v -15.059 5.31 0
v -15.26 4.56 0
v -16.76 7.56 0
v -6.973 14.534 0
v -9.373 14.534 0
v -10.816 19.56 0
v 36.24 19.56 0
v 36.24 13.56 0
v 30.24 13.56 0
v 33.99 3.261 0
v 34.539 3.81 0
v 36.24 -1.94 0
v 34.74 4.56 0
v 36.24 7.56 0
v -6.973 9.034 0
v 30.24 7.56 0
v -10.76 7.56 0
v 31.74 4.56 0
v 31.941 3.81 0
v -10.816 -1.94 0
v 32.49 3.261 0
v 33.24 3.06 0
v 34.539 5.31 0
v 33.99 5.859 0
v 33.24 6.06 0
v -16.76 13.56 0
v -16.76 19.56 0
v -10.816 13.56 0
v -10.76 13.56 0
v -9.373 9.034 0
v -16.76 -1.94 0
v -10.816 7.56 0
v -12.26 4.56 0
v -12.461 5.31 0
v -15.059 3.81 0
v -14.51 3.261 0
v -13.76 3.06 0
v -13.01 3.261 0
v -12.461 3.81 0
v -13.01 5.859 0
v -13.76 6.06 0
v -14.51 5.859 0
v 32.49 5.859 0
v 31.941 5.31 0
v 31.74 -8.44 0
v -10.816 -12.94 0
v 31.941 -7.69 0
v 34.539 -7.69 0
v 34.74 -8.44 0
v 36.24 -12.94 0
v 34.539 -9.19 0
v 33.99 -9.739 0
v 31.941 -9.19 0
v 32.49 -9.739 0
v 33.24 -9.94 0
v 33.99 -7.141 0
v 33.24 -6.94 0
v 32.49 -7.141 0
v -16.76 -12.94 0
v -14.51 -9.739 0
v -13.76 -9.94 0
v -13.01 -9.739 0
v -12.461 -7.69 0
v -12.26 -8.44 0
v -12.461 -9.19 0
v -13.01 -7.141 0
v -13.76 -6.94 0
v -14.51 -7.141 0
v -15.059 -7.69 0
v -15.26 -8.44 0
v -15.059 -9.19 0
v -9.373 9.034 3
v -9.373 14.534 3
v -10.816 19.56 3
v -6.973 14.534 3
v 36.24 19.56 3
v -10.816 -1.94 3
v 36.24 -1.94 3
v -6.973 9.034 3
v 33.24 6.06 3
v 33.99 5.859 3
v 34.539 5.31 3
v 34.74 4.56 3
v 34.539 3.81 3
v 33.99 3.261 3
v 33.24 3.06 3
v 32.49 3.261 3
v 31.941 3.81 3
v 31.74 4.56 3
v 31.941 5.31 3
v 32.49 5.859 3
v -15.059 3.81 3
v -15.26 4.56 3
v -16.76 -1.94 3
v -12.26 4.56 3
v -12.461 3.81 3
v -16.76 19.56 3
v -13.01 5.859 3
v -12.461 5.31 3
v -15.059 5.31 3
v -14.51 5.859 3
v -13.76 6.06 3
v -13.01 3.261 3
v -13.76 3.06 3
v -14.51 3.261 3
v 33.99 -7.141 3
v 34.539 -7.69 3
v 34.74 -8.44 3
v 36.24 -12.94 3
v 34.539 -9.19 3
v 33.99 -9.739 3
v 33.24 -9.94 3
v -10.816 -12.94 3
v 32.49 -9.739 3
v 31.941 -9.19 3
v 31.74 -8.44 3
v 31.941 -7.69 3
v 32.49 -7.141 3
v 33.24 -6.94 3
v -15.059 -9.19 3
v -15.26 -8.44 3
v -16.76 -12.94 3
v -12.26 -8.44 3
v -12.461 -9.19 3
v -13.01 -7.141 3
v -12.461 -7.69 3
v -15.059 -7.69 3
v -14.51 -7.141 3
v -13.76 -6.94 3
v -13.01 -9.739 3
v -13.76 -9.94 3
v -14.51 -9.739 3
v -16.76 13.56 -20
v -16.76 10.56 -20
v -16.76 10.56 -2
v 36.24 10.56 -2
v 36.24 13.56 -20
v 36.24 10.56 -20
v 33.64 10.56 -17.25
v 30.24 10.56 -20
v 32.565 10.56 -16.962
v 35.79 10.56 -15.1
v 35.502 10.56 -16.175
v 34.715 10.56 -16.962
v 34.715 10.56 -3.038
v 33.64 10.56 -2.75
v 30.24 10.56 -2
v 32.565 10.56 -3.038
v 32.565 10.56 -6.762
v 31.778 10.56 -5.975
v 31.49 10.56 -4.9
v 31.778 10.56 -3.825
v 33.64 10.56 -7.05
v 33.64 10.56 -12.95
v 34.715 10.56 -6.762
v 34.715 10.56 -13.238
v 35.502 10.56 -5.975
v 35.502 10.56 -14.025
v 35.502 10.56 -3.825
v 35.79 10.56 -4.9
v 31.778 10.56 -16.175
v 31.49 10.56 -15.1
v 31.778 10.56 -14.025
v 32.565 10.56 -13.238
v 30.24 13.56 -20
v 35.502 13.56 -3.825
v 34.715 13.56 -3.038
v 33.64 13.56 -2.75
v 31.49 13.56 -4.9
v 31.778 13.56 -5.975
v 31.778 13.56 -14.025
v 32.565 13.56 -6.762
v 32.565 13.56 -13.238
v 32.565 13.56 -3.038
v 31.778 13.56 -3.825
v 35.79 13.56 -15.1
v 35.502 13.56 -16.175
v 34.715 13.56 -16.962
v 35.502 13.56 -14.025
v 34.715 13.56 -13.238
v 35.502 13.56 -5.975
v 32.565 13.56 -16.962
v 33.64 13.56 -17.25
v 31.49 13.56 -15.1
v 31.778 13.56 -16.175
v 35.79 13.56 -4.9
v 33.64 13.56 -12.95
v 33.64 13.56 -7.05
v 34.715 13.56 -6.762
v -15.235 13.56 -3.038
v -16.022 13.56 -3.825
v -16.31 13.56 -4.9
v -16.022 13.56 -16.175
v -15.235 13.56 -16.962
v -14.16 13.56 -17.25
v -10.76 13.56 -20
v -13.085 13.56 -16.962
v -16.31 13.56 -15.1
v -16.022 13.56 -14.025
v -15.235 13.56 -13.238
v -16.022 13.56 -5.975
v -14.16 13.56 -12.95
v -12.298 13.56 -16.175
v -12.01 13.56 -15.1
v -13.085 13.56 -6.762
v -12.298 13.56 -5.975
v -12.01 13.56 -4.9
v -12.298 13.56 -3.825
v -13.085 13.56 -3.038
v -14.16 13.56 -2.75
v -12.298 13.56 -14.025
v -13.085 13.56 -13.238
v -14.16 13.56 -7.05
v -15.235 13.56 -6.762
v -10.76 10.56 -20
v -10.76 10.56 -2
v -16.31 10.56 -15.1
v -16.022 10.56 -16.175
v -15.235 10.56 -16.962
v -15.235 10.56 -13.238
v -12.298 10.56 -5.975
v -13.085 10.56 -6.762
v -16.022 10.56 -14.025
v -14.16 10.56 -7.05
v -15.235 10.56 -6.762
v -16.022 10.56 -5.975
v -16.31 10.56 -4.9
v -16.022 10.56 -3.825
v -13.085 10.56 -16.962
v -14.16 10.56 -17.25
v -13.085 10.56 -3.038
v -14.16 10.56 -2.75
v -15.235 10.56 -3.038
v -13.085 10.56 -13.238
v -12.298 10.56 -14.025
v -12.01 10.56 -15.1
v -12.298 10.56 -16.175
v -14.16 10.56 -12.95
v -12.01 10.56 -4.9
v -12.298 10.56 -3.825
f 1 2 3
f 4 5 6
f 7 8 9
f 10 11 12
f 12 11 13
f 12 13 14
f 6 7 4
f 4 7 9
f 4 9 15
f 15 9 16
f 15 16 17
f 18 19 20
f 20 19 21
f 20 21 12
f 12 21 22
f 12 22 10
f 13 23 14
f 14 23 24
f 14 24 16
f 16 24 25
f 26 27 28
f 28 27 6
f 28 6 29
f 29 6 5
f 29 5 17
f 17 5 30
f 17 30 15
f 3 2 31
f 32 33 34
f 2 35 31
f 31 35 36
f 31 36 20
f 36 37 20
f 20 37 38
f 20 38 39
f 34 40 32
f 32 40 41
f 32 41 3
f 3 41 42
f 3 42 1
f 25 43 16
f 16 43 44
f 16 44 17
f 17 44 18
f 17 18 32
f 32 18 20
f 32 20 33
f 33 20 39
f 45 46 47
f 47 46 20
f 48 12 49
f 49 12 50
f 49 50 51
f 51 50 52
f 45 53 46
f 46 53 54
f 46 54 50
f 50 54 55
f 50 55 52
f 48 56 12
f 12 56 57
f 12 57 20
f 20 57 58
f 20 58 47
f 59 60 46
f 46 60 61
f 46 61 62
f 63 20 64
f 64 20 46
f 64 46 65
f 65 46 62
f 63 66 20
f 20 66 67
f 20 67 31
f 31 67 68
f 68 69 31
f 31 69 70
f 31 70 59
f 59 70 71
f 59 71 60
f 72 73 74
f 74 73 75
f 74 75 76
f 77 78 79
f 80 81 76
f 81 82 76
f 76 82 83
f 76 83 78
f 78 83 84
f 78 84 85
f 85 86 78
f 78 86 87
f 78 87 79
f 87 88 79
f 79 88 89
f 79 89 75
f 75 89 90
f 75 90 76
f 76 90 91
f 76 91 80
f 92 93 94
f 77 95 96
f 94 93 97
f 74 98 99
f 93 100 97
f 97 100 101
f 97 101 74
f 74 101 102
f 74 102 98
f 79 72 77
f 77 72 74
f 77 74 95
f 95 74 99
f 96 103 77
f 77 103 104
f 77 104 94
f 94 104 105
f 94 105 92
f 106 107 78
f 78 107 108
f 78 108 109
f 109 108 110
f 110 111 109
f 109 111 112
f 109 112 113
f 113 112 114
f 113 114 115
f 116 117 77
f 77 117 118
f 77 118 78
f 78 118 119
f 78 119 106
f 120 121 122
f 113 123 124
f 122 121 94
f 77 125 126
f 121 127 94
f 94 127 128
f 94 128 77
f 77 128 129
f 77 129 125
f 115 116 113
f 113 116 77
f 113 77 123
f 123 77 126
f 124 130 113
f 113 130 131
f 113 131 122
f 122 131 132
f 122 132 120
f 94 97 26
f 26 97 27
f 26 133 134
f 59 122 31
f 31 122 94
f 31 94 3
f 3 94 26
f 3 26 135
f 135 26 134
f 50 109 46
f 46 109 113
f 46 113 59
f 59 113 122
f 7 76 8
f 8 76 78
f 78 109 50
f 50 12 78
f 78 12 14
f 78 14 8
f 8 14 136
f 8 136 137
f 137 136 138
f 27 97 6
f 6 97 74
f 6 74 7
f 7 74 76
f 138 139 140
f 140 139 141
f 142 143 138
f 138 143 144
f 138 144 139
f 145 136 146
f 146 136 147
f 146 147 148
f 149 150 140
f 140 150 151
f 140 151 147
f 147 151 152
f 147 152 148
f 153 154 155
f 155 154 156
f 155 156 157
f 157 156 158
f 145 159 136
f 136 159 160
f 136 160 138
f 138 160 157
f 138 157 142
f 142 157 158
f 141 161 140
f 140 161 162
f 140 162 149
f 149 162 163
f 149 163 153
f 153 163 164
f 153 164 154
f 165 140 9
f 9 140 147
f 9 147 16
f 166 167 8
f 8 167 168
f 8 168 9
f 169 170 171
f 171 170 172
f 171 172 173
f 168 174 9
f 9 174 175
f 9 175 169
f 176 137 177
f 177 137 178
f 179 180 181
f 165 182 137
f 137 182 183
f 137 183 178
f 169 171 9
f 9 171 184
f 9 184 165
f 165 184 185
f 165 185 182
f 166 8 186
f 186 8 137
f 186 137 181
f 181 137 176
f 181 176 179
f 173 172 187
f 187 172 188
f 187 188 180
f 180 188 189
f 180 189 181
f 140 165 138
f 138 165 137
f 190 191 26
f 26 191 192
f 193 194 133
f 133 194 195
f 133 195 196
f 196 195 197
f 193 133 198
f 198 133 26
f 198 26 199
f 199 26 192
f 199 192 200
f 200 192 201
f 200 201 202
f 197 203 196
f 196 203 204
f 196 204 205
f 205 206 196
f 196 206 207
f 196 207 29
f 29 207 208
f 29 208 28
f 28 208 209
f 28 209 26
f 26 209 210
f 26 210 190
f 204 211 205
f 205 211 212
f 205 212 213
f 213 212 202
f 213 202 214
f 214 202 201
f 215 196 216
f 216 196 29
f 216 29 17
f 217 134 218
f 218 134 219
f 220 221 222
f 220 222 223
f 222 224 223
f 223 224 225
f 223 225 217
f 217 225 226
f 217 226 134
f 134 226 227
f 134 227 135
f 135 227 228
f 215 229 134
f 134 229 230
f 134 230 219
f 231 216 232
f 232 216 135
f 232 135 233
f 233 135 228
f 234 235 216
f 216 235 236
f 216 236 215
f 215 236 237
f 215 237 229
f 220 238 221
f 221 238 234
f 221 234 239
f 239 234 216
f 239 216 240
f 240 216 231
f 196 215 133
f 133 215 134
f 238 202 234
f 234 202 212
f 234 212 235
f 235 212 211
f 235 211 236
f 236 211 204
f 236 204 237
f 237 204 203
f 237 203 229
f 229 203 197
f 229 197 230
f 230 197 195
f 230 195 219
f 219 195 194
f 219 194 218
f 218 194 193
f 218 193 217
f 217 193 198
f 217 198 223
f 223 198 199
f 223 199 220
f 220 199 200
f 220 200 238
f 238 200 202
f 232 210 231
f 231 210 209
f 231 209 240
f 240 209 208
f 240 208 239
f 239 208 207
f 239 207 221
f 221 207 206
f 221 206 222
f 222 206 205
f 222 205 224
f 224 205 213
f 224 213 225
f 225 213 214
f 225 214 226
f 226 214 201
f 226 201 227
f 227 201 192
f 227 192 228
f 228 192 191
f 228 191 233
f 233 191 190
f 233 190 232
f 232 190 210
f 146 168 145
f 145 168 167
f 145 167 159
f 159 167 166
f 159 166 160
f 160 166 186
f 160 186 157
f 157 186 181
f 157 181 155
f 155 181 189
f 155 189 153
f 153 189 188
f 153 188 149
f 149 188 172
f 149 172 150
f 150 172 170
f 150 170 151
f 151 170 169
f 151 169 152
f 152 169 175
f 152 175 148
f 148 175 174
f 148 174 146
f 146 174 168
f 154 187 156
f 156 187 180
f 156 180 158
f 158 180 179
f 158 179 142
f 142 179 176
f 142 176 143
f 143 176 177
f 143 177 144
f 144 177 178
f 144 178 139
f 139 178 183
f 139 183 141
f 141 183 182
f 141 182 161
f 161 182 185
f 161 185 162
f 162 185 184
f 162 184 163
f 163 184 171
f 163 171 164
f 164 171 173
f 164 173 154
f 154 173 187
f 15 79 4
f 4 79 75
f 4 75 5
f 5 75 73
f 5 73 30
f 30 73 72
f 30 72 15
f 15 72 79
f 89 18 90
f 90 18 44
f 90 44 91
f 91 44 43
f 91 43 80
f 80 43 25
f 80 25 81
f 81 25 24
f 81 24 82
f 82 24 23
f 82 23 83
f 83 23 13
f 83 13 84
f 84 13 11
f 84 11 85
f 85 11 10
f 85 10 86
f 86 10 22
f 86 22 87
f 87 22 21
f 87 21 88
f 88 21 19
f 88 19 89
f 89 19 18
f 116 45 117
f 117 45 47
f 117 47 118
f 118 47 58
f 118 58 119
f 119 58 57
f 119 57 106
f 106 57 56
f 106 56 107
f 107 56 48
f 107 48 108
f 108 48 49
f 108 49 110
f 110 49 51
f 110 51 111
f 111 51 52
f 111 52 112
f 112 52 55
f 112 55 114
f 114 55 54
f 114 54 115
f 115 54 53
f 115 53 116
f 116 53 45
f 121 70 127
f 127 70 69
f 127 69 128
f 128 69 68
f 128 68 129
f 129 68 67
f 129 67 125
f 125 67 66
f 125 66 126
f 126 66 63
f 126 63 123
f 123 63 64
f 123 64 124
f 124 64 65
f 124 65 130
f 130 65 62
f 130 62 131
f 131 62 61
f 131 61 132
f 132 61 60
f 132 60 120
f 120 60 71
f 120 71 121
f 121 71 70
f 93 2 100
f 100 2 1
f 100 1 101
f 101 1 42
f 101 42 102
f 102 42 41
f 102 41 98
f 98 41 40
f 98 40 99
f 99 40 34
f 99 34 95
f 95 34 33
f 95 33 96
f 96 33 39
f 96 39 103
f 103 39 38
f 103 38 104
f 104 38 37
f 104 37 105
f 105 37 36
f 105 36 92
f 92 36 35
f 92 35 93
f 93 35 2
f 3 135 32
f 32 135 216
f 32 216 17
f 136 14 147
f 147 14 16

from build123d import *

# Parameters (mm, degrees)
SKETCH1_W           = 53
SKETCH1_H           = 32.5
BOSS_EXTRUDE1_DEPTH = 3
SKETCH5_W           = 6
SKETCH5_H           = 3
BOSS_EXTRUDE2_DEPTH = 20
SKETCH6_R           = 2.15
CUT_EXTRUDE3_DEPTH  = 10
SKETCH7_W           = 2.4
SKETCH7_H           = 5.5
CUT_EXTRUDE6_DEPTH  = 10
SKETCH8_R           = 1.5
CUT_EXTRUDE7_DEPTH  = 10
BOSS_EXTRUDE3_DEPTH = 6
BOSS_EXTRUDE4_DEPTH = 6


with BuildPart() as part:
    # Sketch1 → Boss-Extrude1 (new body)
    with BuildSketch(Plane.XY):
        with Locations((9.74034322, 3.310344828)):
            Rectangle(SKETCH1_W, SKETCH1_H)
    extrude(amount=BOSS_EXTRUDE1_DEPTH)

    # Sketch5 → Boss-Extrude2 (add)
    with BuildSketch(Plane(origin=(0, 0, 0), x_dir=(-1, 0, 0), z_dir=(0, 0, -1))):
        with Locations((-33.24034322, 12.060344828)):
            Rectangle(SKETCH5_W, SKETCH5_H)
        with Locations((13.75965678, 12.060344828)):
            Rectangle(SKETCH5_W, SKETCH5_H)
    extrude(amount=BOSS_EXTRUDE2_DEPTH)

    # Sketch6 → Cut-Extrude3 (cut)
    with BuildSketch(Plane(origin=(0, 13.560344828, 0), x_dir=(1, 0, 0), z_dir=(0, 1, 0))):
        with Locations(Location((33.64034322, 4.9, 0), (0, 0, 270))):
            Circle(SKETCH6_R)
        with Locations(Location((33.64034322, 15.1, 0), (0, 0, 270))):
            Circle(SKETCH6_R)
        with Locations(Location((-14.15965678, 4.9, 0), (0, 0, 270))):
            Circle(SKETCH6_R)
        with Locations(Location((-14.15965678, 15.1, 0), (0, 0, 270))):
            Circle(SKETCH6_R)
    extrude(amount=-CUT_EXTRUDE3_DEPTH, mode=Mode.SUBTRACT)

    # Sketch7 → Cut-Extrude6 (cut)
    with BuildSketch(Plane(origin=(0, 0, 0), x_dir=(-1, 0, 0), z_dir=(0, 0, -1))):
        with Locations((8.172781941, 11.783549127)):
            Rectangle(SKETCH7_W, SKETCH7_H)
    extrude(amount=-CUT_EXTRUDE6_DEPTH, mode=Mode.SUBTRACT)

    # Sketch8 → Cut-Extrude7 (cut)
    with BuildSketch(Plane(origin=(0, 0, 0), x_dir=(-1, 0, 0), z_dir=(0, 0, -1))):
        with Locations((-33.24034322, 4.560344828)):
            Circle(SKETCH8_R)
        with Locations((-33.24034322, -8.439655172)):
            Circle(SKETCH8_R)
        with Locations((13.75965678, -8.439655172)):
            Circle(SKETCH8_R)
        with Locations((13.75965678, 4.560344828)):
            Circle(SKETCH8_R)
    extrude(amount=-CUT_EXTRUDE7_DEPTH, mode=Mode.SUBTRACT)

    # Sketch9 → Boss-Extrude3 (add)
    with BuildSketch(Plane.ZY.offset(16.75965678)):
        Polygon((-2, 10.560344828), (0, 10.560344828), (0, 7.560344828), align=None)
    extrude(amount=-BOSS_EXTRUDE3_DEPTH)

    # Sketch10 → Boss-Extrude4 (add)
    with BuildSketch(Plane(origin=(36.24034322, 0, 0), x_dir=(0, 0, -1), z_dir=(1, 0, 0))):
        Polygon((2, 10.560344828), (0, 10.560344828), (0, 7.560344828), align=None)
    extrude(amount=-BOSS_EXTRUDE4_DEPTH)


solid = part.part
